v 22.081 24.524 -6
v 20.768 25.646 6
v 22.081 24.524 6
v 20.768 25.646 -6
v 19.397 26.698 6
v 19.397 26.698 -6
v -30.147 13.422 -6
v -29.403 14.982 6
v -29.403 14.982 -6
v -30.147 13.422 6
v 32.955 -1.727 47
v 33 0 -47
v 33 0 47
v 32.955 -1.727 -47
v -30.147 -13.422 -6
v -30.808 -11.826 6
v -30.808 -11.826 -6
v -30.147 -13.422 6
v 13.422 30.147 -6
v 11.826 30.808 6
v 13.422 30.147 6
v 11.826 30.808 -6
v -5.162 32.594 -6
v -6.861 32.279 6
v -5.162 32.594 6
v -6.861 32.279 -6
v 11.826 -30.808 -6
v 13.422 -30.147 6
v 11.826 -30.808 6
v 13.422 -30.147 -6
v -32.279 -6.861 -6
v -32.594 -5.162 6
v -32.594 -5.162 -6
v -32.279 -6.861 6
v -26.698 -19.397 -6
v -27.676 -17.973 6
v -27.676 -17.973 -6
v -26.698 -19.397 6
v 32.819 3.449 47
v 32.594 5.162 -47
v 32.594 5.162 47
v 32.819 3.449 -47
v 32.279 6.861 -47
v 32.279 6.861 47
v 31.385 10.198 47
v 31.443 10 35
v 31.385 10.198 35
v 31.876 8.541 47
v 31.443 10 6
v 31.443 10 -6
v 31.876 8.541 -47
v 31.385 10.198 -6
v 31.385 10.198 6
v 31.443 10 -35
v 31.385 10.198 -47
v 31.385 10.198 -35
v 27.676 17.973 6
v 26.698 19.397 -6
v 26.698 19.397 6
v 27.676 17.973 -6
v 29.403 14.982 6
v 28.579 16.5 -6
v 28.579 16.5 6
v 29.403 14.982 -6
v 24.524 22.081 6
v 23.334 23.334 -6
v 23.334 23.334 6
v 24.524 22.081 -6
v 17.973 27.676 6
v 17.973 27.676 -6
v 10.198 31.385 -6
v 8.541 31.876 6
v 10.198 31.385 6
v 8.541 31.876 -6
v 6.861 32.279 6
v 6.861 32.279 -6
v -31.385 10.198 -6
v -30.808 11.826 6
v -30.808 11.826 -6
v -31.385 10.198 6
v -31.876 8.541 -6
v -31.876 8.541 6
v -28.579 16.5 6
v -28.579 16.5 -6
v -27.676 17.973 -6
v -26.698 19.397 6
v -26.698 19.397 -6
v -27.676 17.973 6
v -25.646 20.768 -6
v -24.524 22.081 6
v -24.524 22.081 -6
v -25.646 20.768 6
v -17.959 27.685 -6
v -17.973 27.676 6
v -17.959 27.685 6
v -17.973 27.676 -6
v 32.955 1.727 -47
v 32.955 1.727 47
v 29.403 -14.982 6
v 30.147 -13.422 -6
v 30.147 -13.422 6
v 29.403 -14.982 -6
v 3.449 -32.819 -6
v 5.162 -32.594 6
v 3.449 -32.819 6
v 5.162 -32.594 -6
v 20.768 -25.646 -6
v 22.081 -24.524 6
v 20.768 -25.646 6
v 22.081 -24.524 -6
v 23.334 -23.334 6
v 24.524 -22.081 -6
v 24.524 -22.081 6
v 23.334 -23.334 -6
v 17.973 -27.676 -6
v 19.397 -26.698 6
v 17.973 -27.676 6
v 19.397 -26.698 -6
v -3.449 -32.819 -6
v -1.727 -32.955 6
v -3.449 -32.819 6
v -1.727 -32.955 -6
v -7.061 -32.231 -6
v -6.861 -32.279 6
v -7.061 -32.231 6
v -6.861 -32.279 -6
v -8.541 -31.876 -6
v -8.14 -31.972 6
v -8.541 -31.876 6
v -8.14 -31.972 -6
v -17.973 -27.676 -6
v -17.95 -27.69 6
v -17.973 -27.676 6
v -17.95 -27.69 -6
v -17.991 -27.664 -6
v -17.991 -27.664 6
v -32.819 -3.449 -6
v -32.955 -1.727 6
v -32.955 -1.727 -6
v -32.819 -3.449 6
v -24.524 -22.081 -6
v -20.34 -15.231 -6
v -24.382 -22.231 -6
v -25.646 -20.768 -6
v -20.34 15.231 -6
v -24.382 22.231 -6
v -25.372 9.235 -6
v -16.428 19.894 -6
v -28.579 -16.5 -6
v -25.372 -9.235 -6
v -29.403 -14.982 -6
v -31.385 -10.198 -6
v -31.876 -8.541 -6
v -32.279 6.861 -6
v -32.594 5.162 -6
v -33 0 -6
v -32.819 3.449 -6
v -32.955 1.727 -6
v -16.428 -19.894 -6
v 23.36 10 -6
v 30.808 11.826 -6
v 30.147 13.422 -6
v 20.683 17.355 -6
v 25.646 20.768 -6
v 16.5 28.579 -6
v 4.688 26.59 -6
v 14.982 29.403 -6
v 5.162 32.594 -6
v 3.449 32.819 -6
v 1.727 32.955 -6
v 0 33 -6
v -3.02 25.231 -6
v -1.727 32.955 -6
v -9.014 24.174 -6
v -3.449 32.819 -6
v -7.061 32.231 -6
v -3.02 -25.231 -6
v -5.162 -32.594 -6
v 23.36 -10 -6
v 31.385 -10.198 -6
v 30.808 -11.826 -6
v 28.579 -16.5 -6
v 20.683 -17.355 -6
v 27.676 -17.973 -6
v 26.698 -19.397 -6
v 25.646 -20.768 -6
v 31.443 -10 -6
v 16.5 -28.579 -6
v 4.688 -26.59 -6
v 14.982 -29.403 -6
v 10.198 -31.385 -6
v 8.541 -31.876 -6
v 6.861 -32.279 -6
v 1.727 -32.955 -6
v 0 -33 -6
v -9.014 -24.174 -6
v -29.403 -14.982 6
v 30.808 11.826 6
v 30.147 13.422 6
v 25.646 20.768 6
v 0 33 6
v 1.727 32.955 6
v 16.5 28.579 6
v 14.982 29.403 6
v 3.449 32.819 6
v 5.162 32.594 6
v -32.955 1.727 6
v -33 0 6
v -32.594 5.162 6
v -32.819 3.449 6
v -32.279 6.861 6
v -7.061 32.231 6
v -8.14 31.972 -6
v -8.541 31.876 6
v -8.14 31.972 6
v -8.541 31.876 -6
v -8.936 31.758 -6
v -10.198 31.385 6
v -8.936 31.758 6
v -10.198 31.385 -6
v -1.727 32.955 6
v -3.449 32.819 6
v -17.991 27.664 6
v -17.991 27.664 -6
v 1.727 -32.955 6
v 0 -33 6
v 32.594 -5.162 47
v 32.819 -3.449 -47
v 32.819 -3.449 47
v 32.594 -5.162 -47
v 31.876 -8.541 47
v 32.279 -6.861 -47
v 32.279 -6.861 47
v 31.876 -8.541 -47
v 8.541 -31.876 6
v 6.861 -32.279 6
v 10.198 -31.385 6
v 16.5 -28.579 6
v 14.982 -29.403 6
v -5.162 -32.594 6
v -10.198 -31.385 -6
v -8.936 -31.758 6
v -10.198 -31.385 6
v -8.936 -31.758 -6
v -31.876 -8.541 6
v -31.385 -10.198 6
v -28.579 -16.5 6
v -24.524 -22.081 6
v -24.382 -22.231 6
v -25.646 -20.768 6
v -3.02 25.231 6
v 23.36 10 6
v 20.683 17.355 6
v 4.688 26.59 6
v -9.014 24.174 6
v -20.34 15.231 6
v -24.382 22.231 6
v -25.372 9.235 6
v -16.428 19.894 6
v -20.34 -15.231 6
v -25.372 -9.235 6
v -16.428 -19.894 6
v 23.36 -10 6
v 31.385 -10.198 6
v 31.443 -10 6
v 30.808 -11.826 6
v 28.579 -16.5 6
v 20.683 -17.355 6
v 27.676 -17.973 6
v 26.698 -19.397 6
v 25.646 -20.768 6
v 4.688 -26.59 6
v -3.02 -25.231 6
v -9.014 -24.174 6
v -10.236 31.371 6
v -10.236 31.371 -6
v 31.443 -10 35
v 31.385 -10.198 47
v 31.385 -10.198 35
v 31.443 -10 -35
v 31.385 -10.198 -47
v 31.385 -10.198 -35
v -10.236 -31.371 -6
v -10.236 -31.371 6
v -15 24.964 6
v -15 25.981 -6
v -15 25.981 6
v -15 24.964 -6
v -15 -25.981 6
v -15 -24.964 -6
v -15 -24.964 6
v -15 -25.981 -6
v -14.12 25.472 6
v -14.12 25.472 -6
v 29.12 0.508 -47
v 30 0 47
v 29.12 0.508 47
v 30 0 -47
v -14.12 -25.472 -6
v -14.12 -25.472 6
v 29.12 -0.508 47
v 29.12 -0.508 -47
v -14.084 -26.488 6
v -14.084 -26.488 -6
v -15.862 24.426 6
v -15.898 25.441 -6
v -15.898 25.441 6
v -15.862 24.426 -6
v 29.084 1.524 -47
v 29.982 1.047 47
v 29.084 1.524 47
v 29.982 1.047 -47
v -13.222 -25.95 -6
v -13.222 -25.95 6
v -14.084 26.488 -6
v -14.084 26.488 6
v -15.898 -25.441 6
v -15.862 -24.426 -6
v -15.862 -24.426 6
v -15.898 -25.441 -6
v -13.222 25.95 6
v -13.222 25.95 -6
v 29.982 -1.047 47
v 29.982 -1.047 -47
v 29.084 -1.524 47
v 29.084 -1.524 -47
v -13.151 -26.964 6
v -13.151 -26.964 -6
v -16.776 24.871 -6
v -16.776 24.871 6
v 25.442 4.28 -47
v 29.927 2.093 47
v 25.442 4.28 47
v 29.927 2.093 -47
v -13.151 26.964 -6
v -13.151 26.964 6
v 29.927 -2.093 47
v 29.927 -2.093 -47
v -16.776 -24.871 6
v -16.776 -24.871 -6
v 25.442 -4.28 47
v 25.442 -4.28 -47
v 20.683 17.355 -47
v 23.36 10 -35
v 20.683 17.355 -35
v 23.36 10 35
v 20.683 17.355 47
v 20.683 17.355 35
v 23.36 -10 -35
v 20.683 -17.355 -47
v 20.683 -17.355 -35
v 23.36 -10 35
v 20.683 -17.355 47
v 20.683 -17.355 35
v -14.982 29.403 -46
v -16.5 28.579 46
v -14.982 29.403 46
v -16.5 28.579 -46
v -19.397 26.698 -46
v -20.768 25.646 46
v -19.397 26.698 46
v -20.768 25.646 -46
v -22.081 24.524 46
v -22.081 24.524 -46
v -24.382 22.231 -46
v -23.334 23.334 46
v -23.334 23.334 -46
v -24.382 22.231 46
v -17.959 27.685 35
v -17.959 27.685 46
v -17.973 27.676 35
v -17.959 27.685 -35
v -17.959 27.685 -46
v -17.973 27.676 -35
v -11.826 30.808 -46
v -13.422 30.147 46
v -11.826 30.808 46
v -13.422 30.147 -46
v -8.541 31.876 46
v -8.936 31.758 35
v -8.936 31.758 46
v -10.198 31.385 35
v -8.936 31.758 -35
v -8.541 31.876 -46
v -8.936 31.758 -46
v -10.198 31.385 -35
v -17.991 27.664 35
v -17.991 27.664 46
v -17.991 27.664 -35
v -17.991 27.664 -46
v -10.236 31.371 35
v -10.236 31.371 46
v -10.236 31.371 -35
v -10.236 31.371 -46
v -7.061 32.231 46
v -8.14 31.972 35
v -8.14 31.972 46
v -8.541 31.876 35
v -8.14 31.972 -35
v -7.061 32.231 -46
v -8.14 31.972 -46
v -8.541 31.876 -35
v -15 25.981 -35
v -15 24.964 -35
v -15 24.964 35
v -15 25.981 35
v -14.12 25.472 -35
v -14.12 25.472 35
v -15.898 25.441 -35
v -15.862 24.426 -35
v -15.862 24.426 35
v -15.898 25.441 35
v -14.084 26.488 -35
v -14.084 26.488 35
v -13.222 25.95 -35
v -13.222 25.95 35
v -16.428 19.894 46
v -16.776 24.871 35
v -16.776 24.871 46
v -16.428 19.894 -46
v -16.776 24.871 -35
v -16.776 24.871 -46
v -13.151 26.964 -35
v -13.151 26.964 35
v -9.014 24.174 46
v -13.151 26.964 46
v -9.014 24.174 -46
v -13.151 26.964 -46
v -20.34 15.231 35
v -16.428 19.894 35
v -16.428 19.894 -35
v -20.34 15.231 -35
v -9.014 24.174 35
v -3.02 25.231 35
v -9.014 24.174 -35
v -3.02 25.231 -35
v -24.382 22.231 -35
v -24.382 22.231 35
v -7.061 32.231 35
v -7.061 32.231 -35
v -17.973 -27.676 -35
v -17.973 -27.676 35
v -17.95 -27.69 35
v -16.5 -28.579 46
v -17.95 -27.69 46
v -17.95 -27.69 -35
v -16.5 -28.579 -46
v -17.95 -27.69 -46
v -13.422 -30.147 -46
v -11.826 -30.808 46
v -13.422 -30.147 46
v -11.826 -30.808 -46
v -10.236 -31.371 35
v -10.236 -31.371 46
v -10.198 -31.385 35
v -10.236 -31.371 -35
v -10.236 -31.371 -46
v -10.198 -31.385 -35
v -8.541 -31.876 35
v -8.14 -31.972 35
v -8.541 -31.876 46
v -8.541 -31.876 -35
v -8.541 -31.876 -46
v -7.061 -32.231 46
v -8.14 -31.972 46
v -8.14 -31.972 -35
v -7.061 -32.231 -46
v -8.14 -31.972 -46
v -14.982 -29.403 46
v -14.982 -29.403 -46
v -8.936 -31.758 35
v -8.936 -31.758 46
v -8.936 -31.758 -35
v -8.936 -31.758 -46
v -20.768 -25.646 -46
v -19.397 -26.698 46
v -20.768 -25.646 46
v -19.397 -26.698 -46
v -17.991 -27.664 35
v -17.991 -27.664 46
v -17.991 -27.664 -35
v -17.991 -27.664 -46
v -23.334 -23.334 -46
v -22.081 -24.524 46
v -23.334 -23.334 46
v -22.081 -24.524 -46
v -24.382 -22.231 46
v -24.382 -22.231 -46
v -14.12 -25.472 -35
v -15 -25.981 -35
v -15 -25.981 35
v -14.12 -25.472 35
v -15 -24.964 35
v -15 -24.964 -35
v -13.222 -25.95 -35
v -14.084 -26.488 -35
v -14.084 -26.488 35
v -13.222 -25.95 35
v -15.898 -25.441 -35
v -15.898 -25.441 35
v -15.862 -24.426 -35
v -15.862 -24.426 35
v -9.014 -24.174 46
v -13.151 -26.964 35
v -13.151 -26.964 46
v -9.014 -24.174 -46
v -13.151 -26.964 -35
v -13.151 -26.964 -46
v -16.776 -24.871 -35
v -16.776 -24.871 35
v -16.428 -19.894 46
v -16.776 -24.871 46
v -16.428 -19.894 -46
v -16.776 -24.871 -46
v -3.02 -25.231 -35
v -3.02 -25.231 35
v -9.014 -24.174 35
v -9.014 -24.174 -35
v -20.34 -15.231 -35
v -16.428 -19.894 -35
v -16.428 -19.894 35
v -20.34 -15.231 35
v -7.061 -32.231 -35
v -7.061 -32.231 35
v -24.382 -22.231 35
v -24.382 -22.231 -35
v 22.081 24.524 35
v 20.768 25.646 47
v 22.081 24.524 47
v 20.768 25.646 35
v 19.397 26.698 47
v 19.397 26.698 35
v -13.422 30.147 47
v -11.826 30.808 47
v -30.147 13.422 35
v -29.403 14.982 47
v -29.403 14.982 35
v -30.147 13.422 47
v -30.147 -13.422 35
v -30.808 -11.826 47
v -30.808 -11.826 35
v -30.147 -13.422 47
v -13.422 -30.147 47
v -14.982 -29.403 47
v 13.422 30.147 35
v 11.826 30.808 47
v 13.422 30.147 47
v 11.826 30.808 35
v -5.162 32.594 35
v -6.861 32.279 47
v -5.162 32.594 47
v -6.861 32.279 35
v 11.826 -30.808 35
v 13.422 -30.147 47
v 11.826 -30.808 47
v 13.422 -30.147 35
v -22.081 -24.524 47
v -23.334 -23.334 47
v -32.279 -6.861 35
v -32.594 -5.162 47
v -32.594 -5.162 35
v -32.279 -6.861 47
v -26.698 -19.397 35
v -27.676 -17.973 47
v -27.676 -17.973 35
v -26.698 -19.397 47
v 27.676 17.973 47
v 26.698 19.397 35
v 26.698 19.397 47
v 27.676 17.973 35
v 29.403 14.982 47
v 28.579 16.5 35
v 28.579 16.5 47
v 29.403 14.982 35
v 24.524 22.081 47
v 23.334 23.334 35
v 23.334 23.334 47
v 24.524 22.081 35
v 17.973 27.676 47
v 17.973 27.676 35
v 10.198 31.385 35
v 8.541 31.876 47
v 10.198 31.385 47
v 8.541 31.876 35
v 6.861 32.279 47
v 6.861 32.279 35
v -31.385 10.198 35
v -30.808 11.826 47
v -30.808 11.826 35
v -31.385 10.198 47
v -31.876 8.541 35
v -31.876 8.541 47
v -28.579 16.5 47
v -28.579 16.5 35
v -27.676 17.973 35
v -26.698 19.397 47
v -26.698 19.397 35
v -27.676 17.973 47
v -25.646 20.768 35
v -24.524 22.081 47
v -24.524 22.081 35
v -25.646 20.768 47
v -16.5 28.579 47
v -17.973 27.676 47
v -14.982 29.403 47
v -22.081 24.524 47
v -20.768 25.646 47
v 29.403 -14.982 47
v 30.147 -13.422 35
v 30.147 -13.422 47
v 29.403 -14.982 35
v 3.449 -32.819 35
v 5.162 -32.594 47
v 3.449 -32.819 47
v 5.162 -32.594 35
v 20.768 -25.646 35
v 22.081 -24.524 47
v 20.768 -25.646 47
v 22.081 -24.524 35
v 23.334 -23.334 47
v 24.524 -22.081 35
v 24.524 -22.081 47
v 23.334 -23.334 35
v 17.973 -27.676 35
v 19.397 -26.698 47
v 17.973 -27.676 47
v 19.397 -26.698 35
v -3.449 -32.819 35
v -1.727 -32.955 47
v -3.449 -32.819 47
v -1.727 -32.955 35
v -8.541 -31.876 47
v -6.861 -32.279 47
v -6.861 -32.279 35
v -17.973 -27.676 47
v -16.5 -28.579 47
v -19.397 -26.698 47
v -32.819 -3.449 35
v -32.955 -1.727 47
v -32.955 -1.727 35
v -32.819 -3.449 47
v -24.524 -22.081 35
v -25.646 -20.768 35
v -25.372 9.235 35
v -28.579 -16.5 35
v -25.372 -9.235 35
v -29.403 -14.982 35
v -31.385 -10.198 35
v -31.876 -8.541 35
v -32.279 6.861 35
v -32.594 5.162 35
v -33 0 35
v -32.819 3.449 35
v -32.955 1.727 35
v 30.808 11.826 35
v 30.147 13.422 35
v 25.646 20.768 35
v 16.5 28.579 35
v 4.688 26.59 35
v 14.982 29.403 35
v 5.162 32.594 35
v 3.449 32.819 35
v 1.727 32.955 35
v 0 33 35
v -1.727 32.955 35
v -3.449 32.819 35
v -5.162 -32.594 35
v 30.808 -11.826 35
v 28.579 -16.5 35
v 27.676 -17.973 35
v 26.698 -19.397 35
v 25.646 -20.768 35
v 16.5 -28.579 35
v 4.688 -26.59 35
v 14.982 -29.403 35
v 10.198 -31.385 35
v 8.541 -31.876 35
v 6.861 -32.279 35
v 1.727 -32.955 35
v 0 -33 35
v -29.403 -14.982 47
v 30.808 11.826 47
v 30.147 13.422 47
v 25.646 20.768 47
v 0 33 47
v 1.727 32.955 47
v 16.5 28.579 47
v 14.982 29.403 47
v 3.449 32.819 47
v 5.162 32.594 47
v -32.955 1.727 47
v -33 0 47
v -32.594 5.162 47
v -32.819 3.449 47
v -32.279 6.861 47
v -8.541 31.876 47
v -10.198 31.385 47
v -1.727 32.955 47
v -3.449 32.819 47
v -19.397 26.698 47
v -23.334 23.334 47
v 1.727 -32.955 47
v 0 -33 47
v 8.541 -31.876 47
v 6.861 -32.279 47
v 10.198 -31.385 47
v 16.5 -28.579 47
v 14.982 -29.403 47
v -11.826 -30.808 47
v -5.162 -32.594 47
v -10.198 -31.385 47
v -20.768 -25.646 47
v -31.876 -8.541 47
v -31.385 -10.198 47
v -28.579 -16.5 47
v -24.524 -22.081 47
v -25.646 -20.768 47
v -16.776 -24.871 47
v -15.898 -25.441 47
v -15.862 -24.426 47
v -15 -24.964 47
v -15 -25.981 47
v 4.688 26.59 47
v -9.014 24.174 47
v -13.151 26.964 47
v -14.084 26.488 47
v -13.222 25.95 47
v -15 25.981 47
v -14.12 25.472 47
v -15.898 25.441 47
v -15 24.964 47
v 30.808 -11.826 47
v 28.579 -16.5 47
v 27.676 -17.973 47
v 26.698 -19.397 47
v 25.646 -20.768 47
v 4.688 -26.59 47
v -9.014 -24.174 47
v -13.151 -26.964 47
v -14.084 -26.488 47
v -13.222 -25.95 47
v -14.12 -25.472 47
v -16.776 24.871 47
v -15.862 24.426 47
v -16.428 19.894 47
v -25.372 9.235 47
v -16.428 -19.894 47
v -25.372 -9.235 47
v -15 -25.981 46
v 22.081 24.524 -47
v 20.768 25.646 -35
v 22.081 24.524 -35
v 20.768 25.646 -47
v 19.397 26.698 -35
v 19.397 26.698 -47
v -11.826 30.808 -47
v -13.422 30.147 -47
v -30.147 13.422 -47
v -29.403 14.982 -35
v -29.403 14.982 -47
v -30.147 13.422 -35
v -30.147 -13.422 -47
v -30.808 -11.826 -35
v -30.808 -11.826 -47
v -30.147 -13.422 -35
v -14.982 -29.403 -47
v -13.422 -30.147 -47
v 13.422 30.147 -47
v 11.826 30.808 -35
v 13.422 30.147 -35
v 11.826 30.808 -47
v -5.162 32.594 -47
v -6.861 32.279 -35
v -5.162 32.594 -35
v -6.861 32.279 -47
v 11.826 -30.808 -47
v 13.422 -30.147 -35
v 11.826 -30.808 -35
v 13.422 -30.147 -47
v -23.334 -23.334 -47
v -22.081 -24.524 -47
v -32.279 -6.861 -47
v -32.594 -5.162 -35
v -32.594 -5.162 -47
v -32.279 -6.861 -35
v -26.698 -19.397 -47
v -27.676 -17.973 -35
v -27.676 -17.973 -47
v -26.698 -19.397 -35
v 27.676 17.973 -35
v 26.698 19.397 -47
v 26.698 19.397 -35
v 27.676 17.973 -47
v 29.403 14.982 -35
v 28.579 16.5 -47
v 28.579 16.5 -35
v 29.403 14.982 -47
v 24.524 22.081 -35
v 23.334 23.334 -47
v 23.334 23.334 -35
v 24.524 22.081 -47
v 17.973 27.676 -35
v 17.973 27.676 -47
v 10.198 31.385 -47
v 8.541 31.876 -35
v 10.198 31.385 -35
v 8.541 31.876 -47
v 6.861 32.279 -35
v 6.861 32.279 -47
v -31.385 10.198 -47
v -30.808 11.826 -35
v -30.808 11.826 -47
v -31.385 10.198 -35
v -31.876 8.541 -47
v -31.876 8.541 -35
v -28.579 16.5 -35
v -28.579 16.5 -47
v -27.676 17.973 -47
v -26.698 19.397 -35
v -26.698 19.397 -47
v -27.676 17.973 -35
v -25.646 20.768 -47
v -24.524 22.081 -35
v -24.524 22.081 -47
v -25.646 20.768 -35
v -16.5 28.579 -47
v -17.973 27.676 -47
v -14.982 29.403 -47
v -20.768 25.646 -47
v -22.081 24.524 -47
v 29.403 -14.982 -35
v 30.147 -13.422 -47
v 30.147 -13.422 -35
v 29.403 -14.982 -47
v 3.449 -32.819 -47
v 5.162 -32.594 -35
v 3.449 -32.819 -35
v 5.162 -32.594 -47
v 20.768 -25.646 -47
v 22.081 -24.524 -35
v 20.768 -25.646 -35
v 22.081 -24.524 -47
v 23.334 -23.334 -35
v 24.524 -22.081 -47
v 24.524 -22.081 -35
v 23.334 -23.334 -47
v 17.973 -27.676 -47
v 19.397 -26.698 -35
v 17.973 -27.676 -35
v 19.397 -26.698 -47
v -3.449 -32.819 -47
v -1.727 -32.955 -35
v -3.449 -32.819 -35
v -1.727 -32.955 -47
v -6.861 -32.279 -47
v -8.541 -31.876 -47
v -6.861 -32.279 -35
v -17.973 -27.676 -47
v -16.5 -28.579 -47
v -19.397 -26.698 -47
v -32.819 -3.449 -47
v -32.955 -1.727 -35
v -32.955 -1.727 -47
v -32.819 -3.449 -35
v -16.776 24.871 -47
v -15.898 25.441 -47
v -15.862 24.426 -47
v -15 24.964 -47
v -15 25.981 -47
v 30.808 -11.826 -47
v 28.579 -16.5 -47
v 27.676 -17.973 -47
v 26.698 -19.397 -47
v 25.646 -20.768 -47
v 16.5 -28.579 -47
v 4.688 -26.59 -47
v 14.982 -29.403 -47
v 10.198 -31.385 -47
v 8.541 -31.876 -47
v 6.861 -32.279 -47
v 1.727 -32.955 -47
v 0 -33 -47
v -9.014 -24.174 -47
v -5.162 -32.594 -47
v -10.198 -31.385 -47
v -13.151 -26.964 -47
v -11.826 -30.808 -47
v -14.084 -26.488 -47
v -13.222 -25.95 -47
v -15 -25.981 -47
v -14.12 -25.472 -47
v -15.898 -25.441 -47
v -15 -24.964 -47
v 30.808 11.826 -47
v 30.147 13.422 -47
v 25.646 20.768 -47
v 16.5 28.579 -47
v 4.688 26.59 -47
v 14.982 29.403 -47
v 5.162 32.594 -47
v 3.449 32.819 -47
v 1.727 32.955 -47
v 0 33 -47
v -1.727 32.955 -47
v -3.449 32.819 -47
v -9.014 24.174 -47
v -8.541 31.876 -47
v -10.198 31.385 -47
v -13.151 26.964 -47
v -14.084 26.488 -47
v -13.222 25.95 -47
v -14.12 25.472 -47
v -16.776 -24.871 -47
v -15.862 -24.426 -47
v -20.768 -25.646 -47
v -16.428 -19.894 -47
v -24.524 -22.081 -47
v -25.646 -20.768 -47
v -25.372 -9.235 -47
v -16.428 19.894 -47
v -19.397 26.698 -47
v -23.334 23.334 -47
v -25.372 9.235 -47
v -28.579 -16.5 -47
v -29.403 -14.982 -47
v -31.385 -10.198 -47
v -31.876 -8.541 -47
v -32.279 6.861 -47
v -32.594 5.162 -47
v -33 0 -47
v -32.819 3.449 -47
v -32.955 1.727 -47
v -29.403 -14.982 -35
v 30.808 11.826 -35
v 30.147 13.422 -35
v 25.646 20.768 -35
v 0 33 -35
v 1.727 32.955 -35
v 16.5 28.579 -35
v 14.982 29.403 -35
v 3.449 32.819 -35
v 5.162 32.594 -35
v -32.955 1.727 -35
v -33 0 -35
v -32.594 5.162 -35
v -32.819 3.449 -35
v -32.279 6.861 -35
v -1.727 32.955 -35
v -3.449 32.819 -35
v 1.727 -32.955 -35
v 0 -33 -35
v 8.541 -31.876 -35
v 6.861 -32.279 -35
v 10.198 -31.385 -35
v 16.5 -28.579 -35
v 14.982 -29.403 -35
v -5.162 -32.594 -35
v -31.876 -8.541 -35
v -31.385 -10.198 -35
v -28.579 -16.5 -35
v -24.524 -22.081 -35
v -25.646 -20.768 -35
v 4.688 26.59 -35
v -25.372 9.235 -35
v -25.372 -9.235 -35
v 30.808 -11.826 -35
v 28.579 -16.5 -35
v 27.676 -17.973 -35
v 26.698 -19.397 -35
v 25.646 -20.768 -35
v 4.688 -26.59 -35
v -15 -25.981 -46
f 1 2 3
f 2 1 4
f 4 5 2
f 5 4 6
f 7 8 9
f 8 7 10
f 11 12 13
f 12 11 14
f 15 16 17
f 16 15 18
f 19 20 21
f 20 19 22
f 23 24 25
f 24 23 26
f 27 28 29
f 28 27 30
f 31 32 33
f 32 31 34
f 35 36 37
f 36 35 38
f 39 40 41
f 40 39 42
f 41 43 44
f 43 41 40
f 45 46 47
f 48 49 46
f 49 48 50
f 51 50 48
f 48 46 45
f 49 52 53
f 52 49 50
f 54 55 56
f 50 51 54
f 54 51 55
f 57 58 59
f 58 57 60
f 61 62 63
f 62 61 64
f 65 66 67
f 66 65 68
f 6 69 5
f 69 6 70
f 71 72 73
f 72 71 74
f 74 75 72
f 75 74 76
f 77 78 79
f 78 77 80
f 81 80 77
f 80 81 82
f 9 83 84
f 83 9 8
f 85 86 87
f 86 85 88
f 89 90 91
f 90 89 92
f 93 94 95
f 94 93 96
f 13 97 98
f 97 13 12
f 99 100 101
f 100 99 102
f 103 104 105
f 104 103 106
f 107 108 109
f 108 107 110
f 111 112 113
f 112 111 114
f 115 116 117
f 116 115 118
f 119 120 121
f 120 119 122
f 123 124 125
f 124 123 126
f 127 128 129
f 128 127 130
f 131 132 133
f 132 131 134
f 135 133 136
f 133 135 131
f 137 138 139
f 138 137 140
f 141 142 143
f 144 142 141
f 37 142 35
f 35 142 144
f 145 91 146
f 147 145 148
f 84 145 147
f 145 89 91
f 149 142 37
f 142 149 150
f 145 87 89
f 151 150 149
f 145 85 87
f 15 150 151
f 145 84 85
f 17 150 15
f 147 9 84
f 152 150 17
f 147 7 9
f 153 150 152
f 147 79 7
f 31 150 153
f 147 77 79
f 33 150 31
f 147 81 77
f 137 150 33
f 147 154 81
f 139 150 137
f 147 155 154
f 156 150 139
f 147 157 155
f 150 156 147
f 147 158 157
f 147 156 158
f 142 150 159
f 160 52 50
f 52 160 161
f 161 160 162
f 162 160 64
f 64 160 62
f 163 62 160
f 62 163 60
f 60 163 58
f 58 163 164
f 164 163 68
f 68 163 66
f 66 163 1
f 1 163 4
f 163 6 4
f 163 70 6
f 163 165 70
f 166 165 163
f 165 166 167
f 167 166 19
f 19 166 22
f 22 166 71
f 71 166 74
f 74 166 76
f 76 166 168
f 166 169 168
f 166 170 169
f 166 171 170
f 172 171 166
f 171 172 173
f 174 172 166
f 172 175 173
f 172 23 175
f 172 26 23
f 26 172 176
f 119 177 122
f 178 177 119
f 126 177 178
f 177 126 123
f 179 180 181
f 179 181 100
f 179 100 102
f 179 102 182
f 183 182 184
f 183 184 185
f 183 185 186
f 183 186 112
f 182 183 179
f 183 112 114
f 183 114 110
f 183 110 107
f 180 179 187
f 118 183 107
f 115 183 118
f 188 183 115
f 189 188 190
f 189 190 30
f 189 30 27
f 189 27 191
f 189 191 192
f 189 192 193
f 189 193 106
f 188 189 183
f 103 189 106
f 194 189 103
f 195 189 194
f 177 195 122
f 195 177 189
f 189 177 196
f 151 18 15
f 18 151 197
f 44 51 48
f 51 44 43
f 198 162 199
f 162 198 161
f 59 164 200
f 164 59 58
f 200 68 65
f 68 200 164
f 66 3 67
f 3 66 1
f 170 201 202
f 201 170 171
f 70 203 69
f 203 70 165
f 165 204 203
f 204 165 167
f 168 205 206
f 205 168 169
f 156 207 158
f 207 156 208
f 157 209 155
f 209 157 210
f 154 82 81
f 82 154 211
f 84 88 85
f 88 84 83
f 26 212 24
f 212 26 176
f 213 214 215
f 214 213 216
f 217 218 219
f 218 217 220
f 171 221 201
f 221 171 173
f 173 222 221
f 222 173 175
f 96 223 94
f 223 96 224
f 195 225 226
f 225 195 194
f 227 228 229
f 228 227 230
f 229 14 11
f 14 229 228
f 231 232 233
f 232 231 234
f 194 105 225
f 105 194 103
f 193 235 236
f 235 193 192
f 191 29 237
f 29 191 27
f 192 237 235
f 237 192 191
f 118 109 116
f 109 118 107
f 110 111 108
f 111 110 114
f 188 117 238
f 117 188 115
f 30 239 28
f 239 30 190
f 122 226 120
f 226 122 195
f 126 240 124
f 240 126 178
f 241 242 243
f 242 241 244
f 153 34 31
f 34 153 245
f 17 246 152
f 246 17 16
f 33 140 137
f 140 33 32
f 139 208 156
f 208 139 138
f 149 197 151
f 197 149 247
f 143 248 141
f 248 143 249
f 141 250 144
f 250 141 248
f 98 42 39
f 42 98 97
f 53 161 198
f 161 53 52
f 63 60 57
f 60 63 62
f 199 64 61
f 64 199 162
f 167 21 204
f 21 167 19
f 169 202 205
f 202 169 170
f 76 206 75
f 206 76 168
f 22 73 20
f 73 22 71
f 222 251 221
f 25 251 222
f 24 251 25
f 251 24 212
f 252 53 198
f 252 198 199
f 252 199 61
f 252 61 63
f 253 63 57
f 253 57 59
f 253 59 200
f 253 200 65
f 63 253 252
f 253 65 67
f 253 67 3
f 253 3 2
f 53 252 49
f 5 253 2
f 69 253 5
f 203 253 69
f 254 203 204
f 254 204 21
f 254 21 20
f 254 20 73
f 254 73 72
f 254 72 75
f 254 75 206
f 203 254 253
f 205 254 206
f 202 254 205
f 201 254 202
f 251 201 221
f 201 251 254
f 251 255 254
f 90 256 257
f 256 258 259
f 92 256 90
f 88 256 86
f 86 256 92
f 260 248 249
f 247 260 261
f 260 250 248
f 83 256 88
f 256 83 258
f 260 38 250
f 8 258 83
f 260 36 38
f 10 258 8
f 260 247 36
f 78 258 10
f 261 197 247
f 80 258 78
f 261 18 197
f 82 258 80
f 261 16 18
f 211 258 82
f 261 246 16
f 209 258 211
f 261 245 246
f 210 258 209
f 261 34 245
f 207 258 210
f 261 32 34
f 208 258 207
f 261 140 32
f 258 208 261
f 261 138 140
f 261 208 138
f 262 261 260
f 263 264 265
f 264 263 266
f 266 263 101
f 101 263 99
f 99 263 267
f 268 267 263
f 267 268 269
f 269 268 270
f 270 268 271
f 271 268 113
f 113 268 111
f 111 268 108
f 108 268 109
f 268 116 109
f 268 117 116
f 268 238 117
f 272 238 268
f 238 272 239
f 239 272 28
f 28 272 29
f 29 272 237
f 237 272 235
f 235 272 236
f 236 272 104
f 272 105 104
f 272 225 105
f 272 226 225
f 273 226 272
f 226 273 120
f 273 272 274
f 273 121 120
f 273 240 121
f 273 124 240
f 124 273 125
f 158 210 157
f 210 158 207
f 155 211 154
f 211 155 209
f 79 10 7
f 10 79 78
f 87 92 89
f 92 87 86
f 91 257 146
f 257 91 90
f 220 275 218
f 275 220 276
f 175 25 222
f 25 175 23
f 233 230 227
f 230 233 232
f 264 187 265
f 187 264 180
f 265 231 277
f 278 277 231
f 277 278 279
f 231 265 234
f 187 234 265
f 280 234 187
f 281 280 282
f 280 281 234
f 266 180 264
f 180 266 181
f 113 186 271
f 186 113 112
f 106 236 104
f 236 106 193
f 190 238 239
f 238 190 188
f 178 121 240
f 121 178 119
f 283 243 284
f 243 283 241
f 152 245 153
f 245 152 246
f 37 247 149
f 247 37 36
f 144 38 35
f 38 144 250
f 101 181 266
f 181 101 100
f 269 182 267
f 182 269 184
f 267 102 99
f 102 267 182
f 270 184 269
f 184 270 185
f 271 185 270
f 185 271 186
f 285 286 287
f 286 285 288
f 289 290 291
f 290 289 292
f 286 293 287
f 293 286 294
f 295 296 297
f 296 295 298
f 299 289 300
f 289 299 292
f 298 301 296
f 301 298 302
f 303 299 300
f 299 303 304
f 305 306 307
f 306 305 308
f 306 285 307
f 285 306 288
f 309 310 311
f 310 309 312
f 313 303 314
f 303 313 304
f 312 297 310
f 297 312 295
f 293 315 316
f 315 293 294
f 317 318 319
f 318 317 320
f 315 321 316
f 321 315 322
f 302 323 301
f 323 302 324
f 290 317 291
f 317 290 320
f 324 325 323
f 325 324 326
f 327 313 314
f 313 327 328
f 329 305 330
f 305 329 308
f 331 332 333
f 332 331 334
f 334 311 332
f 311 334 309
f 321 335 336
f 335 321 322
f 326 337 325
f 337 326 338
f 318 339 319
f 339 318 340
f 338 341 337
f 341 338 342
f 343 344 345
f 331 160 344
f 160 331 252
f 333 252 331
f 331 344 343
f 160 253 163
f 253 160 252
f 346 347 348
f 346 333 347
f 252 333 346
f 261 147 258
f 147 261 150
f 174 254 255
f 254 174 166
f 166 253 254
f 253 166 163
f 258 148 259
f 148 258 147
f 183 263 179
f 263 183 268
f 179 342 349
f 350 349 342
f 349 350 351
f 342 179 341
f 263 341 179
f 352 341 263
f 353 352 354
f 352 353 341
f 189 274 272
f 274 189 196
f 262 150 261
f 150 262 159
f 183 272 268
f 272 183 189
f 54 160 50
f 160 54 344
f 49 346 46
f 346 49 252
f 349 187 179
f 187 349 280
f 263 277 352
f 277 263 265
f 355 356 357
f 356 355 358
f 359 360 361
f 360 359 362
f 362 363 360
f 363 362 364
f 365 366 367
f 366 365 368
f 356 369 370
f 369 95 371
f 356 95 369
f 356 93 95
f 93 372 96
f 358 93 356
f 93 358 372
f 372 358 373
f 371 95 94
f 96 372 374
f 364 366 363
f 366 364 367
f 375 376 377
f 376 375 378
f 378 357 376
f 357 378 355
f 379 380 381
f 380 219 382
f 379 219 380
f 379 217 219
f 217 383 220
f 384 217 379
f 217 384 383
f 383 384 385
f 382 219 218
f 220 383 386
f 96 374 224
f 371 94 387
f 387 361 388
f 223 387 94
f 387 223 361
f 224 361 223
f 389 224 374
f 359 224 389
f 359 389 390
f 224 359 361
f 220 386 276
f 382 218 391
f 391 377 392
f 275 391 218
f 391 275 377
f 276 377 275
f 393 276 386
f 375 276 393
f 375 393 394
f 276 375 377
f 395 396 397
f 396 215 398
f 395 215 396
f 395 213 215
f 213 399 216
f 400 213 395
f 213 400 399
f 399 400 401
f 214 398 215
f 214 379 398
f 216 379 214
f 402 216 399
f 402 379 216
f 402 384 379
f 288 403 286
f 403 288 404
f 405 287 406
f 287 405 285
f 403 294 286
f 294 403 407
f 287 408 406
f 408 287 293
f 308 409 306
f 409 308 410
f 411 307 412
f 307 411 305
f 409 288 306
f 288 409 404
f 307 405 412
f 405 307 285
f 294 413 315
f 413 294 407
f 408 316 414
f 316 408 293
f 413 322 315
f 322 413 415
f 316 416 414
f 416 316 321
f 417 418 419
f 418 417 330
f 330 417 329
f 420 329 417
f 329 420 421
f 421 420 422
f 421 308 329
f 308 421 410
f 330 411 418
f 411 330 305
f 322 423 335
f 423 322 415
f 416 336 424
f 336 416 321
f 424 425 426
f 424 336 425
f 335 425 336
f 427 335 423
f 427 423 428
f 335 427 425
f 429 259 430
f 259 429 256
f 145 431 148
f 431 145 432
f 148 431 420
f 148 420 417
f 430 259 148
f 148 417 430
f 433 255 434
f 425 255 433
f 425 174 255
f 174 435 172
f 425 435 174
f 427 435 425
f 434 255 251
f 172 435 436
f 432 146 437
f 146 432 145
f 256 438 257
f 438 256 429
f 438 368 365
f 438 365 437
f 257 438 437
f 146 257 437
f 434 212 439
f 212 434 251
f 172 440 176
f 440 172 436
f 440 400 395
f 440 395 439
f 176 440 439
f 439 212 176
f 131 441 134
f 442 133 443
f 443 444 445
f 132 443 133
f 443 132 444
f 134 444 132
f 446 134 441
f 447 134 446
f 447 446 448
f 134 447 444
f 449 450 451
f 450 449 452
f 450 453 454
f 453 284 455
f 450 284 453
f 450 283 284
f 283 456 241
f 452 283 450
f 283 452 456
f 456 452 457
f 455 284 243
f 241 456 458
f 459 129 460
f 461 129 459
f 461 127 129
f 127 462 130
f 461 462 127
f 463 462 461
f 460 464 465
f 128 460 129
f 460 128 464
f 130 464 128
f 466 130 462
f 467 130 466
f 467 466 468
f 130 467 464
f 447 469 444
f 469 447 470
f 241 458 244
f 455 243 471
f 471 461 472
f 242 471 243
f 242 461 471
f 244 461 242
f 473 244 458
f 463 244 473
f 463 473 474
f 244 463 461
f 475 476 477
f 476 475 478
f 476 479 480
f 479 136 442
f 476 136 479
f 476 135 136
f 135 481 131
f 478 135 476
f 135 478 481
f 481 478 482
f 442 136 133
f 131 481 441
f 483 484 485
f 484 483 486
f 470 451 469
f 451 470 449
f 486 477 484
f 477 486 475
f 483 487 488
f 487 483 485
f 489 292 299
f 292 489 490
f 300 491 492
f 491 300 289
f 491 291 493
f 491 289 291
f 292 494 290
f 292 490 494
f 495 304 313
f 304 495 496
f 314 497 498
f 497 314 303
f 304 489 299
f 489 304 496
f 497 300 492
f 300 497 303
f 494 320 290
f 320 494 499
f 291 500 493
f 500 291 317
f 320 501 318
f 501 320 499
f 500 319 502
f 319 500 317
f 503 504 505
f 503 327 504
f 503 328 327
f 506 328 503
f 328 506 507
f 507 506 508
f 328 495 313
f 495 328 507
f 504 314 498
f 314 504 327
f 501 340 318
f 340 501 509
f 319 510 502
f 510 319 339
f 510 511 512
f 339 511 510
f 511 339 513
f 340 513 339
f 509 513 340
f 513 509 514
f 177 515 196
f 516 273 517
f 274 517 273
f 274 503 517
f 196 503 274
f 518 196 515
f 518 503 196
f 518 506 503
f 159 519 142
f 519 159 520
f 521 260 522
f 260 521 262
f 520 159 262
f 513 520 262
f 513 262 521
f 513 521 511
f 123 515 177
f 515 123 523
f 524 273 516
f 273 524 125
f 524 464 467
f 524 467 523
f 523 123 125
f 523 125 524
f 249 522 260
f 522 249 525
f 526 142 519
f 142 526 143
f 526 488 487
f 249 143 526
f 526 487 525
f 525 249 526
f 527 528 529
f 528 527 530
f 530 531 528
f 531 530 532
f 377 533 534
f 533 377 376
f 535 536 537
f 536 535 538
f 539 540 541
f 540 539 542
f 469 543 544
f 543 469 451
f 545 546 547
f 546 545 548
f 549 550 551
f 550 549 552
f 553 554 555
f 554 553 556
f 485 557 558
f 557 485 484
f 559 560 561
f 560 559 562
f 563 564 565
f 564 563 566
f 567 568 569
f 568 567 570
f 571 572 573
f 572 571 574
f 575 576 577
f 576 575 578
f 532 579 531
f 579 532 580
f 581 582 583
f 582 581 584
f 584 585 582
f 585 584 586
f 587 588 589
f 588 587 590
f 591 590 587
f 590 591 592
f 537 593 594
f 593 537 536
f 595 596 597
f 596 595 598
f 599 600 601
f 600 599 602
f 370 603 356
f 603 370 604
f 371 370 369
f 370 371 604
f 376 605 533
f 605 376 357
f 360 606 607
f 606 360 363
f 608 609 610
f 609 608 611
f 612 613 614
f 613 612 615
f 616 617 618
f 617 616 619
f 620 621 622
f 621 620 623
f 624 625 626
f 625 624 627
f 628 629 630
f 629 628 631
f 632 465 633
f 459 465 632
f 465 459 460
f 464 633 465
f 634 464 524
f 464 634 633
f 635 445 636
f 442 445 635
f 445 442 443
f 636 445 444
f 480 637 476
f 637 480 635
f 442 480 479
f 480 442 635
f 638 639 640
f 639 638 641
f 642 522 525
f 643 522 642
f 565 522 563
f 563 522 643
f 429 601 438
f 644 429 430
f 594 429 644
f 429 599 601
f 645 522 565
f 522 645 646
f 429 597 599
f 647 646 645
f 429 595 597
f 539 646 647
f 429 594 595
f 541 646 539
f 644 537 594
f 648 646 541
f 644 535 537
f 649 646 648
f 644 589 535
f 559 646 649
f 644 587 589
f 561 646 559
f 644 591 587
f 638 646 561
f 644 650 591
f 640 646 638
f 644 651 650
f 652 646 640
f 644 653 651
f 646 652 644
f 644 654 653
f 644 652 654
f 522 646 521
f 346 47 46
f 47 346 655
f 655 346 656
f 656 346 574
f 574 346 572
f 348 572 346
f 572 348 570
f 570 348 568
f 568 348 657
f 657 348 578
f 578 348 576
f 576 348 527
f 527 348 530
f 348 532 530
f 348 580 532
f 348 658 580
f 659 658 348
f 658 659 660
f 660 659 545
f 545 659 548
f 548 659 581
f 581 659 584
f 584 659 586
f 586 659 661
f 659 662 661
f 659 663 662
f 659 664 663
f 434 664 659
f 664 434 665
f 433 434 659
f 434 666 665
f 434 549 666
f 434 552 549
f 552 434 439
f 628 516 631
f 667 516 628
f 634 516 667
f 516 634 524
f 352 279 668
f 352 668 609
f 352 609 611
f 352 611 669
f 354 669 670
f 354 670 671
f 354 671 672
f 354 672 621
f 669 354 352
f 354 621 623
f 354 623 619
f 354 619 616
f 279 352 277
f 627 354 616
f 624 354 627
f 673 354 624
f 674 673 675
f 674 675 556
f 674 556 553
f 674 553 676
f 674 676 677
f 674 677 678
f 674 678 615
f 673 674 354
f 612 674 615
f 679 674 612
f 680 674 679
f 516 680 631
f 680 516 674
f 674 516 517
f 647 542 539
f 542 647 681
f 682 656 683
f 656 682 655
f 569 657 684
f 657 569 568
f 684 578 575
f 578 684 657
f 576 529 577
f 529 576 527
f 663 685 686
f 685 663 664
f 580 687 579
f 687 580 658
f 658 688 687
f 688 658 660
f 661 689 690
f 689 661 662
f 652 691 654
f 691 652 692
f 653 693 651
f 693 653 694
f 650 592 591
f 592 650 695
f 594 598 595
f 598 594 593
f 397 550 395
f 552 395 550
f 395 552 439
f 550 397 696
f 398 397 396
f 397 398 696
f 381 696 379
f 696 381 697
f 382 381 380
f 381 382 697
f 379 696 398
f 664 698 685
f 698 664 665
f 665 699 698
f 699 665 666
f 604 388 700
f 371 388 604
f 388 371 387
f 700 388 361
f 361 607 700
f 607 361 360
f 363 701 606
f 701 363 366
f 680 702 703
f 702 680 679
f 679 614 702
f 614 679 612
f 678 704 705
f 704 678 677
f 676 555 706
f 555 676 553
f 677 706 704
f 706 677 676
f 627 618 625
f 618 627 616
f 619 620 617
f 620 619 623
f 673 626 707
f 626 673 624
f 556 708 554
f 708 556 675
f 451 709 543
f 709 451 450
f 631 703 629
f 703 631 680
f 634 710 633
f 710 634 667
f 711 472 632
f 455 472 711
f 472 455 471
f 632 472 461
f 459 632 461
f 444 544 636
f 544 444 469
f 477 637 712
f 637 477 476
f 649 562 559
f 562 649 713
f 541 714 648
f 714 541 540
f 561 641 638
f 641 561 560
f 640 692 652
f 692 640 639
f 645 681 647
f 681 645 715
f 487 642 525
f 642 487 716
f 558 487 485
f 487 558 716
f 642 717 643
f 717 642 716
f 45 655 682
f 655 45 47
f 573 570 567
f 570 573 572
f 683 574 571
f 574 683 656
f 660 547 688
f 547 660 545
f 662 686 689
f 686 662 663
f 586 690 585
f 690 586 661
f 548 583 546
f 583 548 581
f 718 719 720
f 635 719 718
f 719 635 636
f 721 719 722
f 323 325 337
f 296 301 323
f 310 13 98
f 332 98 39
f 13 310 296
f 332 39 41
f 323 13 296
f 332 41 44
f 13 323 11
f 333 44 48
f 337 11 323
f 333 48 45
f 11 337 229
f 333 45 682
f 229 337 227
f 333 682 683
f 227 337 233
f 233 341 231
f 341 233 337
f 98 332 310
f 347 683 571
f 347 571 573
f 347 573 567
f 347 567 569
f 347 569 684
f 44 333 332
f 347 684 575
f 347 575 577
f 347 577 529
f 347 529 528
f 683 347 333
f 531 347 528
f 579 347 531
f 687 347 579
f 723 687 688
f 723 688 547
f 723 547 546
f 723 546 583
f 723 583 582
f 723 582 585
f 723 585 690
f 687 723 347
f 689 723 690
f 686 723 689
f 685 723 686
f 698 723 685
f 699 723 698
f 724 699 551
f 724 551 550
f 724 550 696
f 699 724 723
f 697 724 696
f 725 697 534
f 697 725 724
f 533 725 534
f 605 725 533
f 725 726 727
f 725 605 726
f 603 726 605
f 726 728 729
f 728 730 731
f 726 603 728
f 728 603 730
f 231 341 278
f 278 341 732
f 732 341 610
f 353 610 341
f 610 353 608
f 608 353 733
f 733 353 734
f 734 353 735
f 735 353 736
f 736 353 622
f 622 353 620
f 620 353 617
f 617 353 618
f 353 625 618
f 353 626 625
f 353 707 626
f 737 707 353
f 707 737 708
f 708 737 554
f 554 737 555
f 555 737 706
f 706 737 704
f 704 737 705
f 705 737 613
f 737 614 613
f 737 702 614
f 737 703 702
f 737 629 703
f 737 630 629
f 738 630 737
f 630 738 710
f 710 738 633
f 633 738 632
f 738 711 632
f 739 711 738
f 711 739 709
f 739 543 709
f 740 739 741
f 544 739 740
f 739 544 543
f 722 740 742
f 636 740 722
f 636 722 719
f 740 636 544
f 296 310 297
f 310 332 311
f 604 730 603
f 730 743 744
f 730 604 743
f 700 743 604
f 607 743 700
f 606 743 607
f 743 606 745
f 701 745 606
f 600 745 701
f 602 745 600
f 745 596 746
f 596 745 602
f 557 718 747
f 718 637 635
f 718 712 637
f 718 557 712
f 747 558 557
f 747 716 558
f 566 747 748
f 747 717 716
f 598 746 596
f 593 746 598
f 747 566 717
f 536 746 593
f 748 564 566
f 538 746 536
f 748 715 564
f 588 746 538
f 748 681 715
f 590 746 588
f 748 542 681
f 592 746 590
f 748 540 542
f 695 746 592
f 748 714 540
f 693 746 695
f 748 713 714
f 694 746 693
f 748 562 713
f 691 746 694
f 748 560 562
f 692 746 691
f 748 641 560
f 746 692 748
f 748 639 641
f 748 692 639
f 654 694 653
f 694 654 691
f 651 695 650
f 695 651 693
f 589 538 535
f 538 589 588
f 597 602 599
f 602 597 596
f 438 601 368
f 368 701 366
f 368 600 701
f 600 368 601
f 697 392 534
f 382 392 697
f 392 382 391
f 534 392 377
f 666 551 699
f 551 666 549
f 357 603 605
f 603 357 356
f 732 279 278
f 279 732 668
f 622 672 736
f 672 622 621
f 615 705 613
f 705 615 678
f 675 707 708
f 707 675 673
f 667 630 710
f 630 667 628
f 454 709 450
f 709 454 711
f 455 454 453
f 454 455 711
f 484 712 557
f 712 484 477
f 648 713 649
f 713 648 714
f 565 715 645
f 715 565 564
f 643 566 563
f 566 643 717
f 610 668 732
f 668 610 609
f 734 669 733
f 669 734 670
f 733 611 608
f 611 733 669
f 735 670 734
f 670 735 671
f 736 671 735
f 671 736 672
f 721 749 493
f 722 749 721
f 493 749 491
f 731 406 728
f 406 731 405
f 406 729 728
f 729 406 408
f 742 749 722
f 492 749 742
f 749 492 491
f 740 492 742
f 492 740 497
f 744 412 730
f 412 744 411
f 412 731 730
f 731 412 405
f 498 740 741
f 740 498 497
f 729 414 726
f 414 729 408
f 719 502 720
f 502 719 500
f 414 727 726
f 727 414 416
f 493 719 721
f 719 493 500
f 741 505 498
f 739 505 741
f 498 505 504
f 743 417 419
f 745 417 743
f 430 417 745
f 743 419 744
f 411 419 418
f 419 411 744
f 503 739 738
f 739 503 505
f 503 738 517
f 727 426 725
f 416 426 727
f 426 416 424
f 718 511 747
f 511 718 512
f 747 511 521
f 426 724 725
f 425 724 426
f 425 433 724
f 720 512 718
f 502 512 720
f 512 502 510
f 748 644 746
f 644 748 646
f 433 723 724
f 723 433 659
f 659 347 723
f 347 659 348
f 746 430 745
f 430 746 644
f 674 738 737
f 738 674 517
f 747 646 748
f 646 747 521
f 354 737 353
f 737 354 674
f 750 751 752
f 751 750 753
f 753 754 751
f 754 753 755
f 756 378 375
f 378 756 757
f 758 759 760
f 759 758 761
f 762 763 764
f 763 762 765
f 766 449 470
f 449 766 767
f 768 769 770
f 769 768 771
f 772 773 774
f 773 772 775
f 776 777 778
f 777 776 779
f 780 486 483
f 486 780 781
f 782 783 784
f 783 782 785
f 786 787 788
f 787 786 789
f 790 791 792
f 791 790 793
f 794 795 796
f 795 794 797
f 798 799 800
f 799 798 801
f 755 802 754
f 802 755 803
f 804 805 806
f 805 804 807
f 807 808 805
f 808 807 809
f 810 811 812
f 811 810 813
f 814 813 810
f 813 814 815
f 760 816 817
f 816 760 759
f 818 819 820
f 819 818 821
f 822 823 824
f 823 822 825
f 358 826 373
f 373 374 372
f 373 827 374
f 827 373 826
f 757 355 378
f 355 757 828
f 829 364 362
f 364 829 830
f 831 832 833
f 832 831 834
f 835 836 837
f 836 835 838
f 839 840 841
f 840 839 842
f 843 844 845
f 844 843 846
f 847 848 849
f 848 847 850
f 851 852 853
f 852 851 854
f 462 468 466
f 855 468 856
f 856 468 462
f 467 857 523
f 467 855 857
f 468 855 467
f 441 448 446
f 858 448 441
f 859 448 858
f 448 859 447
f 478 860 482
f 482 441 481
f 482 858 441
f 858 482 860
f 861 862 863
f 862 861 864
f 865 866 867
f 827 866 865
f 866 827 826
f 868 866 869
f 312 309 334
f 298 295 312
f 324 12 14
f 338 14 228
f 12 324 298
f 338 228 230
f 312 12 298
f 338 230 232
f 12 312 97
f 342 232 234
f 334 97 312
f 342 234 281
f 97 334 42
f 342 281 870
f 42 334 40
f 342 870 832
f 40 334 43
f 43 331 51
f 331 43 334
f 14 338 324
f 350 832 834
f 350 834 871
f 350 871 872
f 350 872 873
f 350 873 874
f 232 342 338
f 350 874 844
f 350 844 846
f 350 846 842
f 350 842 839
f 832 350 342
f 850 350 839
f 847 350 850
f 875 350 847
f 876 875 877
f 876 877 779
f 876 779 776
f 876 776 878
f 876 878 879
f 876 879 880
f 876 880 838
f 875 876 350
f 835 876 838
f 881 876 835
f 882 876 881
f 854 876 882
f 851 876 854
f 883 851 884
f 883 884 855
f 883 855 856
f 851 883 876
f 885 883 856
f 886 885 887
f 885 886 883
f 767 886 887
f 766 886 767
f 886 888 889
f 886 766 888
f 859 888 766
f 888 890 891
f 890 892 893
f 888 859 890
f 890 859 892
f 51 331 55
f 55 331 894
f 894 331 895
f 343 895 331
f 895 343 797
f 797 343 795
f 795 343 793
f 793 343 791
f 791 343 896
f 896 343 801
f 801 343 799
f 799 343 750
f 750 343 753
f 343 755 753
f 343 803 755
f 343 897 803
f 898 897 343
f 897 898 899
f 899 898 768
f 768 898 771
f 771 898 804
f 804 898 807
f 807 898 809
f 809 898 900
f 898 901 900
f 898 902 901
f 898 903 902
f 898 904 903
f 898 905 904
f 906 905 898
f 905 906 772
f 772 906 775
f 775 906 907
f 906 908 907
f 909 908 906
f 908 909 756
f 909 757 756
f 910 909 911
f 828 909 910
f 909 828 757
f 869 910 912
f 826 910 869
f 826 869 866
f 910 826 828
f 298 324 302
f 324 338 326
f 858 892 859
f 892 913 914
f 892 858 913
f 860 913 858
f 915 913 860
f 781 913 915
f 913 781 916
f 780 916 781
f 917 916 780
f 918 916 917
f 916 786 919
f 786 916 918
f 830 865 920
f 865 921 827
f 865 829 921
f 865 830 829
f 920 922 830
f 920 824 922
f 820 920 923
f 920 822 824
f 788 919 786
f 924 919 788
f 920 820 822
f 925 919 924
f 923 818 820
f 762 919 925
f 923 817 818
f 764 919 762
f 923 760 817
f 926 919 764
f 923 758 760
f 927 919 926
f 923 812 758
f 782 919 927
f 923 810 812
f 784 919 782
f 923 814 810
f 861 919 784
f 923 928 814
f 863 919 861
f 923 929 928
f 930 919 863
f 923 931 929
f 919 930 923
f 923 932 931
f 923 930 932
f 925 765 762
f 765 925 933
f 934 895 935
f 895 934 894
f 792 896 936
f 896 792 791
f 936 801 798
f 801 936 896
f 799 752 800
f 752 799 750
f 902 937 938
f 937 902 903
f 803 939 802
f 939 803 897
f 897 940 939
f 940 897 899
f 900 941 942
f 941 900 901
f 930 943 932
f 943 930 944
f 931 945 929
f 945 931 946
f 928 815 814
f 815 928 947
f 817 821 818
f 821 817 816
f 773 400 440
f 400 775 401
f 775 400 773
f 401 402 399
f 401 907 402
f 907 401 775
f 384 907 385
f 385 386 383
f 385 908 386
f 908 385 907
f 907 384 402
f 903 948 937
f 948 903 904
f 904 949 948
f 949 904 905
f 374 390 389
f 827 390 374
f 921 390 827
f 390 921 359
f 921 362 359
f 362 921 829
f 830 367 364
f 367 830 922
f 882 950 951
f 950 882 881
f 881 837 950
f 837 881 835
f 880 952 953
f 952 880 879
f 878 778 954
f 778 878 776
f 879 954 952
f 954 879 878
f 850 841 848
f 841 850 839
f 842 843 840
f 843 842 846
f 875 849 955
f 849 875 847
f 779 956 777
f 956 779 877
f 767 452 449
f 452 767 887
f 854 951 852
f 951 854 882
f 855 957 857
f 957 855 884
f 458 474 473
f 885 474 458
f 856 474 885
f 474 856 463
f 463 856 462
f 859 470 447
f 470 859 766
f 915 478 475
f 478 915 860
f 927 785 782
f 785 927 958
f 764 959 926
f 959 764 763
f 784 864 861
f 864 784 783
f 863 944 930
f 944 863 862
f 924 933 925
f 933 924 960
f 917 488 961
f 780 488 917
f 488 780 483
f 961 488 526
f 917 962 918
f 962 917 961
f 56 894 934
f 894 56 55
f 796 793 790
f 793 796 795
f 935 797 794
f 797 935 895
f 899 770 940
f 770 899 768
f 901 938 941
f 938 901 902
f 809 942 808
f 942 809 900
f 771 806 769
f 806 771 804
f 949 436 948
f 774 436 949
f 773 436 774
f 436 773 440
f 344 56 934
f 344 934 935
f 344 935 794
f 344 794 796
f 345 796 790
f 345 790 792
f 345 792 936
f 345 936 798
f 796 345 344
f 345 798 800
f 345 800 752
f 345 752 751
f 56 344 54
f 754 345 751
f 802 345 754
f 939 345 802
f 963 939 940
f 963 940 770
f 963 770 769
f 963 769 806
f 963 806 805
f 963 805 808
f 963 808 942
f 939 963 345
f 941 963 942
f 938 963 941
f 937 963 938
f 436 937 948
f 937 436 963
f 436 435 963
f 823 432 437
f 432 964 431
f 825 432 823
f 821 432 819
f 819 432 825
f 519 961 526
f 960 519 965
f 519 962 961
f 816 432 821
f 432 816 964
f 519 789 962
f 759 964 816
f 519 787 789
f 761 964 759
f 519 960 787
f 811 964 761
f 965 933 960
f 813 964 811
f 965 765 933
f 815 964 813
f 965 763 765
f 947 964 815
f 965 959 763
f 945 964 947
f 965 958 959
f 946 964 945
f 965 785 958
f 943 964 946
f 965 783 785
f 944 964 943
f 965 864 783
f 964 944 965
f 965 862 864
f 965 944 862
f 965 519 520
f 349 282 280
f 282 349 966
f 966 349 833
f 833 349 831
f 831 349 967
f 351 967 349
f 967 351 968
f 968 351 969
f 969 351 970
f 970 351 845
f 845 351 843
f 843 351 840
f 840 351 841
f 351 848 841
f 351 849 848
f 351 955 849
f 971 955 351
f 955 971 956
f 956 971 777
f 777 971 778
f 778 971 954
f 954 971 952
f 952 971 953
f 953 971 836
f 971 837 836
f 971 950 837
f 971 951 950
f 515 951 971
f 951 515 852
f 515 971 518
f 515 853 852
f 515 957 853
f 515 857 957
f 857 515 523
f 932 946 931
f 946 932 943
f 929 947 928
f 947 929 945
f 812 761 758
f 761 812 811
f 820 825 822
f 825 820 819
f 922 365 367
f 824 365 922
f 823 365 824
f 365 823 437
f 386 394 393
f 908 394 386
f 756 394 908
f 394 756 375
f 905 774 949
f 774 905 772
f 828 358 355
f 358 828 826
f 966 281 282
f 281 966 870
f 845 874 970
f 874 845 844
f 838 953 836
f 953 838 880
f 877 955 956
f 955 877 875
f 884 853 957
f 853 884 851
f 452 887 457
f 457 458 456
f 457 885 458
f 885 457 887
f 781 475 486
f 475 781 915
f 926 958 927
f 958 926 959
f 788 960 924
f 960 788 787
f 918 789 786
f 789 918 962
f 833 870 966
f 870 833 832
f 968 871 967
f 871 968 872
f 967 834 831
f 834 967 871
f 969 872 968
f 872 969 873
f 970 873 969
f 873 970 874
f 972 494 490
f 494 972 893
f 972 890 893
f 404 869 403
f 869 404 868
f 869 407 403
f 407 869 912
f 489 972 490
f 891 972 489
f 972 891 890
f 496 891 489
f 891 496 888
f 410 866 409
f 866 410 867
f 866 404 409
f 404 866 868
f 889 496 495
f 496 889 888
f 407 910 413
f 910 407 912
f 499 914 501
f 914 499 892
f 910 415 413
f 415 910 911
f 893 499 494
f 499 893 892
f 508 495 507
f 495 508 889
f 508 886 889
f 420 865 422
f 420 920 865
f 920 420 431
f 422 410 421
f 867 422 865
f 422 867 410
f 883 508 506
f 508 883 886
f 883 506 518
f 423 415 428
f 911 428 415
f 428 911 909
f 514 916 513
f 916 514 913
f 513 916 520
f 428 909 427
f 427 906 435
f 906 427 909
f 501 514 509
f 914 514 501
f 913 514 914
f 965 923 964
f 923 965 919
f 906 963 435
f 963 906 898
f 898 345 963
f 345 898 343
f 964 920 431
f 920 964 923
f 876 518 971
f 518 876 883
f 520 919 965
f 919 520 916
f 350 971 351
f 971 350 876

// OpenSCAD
// file: gps-module.scad
module gps_module() {
    union() {
        // Main Board
        difference() {
            cube([26,36,1], center=true);
            // Mounting Holes
            translate([10.5, 15.5, 0]) {
                cylinder(h = 5, d = 3, center=true, $fn=25);
            }
            translate([-10.5, 15.5, 0]) {
                cylinder(h = 5, d = 3, center=true, $fn=25);
            }
            translate([10.5, -15.5, 0]) {
                cylinder(h = 5, d = 3, center=true, $fn=25);
            }
            translate([-10.5, -15.5, 0]) {
                cylinder(h = 5, d = 3, center=true, $fn=25);
            }
            // Data Holes
            translate([0,16.5,0]) {
                translate([-3.5, 0, 0]) {
                    cylinder(h=5, d= 0.6, center=true, $fn=25);
                }
                translate([3.5, 0, 0]) {
                    cylinder(h=5, d= 0.6, center=true, $fn=25);
                }
                translate([-1.2, 0, 0]) {
                    cylinder(h=5, d= 0.6, center=true, $fn=25);
                }
                translate([1.2, 0, 0]) {
                    cylinder(h=5, d= 0.6, center=true, $fn=25);
                }
            }
        }
        
        // Antenna
        translate([0,0,5]) {
            cube([26,26,9], center=true);
        }
        
        // Cable
        translate([0,-13,0]) {
            cube([16, 8,9], center=true);
        }
        
        // Components (front)
        translate([0,0,-2.5] ){
            cube([24, 24, 4], center=true);
        }
    }
}

gps_module();
// main file
use <gps-module.scad>;

module tri_support() {
    union() {
        translate([0, 0, 41]) circle_support();
        translate([0, 0, -41]) circle_support();
        circle_support();
        resize([0, 0, 92], auto=[false, false, true]) wside_seg();
    }
}

tri_support();

module circle_support() {
    difference() {
        cylinder(h=12, d=66, center=true, $fn=120);
        cylinder(h=25, d=60, center=true, $fn=3);
        rotate(a=2) {
            cylinder(h=25, d=60, center=true, $fn=3);
        }
        rotate(a=-2) {
            cylinder(h=25, d=60, center=true, $fn=3);
        }
        rotate(a=4) {
            cylinder(h=25, d=60, center=true, $fn=3);
        }
        rotate(a=-4) {
            cylinder(h=25, d=60, center=true, $fn=3);
        }
        cylinder(h=25, d=54, center=true, $fn=9);
    }
}

module iside_seg() {
    intersection() {
        circle_support();
        translate([30, 0, 0]) {
            cube([20, 20, 20], center=true);
        }
    }
}

module wside_seg() {
    iside_seg();
    rotate(a=120) iside_seg();
    rotate(a=-120) iside_seg();
}
